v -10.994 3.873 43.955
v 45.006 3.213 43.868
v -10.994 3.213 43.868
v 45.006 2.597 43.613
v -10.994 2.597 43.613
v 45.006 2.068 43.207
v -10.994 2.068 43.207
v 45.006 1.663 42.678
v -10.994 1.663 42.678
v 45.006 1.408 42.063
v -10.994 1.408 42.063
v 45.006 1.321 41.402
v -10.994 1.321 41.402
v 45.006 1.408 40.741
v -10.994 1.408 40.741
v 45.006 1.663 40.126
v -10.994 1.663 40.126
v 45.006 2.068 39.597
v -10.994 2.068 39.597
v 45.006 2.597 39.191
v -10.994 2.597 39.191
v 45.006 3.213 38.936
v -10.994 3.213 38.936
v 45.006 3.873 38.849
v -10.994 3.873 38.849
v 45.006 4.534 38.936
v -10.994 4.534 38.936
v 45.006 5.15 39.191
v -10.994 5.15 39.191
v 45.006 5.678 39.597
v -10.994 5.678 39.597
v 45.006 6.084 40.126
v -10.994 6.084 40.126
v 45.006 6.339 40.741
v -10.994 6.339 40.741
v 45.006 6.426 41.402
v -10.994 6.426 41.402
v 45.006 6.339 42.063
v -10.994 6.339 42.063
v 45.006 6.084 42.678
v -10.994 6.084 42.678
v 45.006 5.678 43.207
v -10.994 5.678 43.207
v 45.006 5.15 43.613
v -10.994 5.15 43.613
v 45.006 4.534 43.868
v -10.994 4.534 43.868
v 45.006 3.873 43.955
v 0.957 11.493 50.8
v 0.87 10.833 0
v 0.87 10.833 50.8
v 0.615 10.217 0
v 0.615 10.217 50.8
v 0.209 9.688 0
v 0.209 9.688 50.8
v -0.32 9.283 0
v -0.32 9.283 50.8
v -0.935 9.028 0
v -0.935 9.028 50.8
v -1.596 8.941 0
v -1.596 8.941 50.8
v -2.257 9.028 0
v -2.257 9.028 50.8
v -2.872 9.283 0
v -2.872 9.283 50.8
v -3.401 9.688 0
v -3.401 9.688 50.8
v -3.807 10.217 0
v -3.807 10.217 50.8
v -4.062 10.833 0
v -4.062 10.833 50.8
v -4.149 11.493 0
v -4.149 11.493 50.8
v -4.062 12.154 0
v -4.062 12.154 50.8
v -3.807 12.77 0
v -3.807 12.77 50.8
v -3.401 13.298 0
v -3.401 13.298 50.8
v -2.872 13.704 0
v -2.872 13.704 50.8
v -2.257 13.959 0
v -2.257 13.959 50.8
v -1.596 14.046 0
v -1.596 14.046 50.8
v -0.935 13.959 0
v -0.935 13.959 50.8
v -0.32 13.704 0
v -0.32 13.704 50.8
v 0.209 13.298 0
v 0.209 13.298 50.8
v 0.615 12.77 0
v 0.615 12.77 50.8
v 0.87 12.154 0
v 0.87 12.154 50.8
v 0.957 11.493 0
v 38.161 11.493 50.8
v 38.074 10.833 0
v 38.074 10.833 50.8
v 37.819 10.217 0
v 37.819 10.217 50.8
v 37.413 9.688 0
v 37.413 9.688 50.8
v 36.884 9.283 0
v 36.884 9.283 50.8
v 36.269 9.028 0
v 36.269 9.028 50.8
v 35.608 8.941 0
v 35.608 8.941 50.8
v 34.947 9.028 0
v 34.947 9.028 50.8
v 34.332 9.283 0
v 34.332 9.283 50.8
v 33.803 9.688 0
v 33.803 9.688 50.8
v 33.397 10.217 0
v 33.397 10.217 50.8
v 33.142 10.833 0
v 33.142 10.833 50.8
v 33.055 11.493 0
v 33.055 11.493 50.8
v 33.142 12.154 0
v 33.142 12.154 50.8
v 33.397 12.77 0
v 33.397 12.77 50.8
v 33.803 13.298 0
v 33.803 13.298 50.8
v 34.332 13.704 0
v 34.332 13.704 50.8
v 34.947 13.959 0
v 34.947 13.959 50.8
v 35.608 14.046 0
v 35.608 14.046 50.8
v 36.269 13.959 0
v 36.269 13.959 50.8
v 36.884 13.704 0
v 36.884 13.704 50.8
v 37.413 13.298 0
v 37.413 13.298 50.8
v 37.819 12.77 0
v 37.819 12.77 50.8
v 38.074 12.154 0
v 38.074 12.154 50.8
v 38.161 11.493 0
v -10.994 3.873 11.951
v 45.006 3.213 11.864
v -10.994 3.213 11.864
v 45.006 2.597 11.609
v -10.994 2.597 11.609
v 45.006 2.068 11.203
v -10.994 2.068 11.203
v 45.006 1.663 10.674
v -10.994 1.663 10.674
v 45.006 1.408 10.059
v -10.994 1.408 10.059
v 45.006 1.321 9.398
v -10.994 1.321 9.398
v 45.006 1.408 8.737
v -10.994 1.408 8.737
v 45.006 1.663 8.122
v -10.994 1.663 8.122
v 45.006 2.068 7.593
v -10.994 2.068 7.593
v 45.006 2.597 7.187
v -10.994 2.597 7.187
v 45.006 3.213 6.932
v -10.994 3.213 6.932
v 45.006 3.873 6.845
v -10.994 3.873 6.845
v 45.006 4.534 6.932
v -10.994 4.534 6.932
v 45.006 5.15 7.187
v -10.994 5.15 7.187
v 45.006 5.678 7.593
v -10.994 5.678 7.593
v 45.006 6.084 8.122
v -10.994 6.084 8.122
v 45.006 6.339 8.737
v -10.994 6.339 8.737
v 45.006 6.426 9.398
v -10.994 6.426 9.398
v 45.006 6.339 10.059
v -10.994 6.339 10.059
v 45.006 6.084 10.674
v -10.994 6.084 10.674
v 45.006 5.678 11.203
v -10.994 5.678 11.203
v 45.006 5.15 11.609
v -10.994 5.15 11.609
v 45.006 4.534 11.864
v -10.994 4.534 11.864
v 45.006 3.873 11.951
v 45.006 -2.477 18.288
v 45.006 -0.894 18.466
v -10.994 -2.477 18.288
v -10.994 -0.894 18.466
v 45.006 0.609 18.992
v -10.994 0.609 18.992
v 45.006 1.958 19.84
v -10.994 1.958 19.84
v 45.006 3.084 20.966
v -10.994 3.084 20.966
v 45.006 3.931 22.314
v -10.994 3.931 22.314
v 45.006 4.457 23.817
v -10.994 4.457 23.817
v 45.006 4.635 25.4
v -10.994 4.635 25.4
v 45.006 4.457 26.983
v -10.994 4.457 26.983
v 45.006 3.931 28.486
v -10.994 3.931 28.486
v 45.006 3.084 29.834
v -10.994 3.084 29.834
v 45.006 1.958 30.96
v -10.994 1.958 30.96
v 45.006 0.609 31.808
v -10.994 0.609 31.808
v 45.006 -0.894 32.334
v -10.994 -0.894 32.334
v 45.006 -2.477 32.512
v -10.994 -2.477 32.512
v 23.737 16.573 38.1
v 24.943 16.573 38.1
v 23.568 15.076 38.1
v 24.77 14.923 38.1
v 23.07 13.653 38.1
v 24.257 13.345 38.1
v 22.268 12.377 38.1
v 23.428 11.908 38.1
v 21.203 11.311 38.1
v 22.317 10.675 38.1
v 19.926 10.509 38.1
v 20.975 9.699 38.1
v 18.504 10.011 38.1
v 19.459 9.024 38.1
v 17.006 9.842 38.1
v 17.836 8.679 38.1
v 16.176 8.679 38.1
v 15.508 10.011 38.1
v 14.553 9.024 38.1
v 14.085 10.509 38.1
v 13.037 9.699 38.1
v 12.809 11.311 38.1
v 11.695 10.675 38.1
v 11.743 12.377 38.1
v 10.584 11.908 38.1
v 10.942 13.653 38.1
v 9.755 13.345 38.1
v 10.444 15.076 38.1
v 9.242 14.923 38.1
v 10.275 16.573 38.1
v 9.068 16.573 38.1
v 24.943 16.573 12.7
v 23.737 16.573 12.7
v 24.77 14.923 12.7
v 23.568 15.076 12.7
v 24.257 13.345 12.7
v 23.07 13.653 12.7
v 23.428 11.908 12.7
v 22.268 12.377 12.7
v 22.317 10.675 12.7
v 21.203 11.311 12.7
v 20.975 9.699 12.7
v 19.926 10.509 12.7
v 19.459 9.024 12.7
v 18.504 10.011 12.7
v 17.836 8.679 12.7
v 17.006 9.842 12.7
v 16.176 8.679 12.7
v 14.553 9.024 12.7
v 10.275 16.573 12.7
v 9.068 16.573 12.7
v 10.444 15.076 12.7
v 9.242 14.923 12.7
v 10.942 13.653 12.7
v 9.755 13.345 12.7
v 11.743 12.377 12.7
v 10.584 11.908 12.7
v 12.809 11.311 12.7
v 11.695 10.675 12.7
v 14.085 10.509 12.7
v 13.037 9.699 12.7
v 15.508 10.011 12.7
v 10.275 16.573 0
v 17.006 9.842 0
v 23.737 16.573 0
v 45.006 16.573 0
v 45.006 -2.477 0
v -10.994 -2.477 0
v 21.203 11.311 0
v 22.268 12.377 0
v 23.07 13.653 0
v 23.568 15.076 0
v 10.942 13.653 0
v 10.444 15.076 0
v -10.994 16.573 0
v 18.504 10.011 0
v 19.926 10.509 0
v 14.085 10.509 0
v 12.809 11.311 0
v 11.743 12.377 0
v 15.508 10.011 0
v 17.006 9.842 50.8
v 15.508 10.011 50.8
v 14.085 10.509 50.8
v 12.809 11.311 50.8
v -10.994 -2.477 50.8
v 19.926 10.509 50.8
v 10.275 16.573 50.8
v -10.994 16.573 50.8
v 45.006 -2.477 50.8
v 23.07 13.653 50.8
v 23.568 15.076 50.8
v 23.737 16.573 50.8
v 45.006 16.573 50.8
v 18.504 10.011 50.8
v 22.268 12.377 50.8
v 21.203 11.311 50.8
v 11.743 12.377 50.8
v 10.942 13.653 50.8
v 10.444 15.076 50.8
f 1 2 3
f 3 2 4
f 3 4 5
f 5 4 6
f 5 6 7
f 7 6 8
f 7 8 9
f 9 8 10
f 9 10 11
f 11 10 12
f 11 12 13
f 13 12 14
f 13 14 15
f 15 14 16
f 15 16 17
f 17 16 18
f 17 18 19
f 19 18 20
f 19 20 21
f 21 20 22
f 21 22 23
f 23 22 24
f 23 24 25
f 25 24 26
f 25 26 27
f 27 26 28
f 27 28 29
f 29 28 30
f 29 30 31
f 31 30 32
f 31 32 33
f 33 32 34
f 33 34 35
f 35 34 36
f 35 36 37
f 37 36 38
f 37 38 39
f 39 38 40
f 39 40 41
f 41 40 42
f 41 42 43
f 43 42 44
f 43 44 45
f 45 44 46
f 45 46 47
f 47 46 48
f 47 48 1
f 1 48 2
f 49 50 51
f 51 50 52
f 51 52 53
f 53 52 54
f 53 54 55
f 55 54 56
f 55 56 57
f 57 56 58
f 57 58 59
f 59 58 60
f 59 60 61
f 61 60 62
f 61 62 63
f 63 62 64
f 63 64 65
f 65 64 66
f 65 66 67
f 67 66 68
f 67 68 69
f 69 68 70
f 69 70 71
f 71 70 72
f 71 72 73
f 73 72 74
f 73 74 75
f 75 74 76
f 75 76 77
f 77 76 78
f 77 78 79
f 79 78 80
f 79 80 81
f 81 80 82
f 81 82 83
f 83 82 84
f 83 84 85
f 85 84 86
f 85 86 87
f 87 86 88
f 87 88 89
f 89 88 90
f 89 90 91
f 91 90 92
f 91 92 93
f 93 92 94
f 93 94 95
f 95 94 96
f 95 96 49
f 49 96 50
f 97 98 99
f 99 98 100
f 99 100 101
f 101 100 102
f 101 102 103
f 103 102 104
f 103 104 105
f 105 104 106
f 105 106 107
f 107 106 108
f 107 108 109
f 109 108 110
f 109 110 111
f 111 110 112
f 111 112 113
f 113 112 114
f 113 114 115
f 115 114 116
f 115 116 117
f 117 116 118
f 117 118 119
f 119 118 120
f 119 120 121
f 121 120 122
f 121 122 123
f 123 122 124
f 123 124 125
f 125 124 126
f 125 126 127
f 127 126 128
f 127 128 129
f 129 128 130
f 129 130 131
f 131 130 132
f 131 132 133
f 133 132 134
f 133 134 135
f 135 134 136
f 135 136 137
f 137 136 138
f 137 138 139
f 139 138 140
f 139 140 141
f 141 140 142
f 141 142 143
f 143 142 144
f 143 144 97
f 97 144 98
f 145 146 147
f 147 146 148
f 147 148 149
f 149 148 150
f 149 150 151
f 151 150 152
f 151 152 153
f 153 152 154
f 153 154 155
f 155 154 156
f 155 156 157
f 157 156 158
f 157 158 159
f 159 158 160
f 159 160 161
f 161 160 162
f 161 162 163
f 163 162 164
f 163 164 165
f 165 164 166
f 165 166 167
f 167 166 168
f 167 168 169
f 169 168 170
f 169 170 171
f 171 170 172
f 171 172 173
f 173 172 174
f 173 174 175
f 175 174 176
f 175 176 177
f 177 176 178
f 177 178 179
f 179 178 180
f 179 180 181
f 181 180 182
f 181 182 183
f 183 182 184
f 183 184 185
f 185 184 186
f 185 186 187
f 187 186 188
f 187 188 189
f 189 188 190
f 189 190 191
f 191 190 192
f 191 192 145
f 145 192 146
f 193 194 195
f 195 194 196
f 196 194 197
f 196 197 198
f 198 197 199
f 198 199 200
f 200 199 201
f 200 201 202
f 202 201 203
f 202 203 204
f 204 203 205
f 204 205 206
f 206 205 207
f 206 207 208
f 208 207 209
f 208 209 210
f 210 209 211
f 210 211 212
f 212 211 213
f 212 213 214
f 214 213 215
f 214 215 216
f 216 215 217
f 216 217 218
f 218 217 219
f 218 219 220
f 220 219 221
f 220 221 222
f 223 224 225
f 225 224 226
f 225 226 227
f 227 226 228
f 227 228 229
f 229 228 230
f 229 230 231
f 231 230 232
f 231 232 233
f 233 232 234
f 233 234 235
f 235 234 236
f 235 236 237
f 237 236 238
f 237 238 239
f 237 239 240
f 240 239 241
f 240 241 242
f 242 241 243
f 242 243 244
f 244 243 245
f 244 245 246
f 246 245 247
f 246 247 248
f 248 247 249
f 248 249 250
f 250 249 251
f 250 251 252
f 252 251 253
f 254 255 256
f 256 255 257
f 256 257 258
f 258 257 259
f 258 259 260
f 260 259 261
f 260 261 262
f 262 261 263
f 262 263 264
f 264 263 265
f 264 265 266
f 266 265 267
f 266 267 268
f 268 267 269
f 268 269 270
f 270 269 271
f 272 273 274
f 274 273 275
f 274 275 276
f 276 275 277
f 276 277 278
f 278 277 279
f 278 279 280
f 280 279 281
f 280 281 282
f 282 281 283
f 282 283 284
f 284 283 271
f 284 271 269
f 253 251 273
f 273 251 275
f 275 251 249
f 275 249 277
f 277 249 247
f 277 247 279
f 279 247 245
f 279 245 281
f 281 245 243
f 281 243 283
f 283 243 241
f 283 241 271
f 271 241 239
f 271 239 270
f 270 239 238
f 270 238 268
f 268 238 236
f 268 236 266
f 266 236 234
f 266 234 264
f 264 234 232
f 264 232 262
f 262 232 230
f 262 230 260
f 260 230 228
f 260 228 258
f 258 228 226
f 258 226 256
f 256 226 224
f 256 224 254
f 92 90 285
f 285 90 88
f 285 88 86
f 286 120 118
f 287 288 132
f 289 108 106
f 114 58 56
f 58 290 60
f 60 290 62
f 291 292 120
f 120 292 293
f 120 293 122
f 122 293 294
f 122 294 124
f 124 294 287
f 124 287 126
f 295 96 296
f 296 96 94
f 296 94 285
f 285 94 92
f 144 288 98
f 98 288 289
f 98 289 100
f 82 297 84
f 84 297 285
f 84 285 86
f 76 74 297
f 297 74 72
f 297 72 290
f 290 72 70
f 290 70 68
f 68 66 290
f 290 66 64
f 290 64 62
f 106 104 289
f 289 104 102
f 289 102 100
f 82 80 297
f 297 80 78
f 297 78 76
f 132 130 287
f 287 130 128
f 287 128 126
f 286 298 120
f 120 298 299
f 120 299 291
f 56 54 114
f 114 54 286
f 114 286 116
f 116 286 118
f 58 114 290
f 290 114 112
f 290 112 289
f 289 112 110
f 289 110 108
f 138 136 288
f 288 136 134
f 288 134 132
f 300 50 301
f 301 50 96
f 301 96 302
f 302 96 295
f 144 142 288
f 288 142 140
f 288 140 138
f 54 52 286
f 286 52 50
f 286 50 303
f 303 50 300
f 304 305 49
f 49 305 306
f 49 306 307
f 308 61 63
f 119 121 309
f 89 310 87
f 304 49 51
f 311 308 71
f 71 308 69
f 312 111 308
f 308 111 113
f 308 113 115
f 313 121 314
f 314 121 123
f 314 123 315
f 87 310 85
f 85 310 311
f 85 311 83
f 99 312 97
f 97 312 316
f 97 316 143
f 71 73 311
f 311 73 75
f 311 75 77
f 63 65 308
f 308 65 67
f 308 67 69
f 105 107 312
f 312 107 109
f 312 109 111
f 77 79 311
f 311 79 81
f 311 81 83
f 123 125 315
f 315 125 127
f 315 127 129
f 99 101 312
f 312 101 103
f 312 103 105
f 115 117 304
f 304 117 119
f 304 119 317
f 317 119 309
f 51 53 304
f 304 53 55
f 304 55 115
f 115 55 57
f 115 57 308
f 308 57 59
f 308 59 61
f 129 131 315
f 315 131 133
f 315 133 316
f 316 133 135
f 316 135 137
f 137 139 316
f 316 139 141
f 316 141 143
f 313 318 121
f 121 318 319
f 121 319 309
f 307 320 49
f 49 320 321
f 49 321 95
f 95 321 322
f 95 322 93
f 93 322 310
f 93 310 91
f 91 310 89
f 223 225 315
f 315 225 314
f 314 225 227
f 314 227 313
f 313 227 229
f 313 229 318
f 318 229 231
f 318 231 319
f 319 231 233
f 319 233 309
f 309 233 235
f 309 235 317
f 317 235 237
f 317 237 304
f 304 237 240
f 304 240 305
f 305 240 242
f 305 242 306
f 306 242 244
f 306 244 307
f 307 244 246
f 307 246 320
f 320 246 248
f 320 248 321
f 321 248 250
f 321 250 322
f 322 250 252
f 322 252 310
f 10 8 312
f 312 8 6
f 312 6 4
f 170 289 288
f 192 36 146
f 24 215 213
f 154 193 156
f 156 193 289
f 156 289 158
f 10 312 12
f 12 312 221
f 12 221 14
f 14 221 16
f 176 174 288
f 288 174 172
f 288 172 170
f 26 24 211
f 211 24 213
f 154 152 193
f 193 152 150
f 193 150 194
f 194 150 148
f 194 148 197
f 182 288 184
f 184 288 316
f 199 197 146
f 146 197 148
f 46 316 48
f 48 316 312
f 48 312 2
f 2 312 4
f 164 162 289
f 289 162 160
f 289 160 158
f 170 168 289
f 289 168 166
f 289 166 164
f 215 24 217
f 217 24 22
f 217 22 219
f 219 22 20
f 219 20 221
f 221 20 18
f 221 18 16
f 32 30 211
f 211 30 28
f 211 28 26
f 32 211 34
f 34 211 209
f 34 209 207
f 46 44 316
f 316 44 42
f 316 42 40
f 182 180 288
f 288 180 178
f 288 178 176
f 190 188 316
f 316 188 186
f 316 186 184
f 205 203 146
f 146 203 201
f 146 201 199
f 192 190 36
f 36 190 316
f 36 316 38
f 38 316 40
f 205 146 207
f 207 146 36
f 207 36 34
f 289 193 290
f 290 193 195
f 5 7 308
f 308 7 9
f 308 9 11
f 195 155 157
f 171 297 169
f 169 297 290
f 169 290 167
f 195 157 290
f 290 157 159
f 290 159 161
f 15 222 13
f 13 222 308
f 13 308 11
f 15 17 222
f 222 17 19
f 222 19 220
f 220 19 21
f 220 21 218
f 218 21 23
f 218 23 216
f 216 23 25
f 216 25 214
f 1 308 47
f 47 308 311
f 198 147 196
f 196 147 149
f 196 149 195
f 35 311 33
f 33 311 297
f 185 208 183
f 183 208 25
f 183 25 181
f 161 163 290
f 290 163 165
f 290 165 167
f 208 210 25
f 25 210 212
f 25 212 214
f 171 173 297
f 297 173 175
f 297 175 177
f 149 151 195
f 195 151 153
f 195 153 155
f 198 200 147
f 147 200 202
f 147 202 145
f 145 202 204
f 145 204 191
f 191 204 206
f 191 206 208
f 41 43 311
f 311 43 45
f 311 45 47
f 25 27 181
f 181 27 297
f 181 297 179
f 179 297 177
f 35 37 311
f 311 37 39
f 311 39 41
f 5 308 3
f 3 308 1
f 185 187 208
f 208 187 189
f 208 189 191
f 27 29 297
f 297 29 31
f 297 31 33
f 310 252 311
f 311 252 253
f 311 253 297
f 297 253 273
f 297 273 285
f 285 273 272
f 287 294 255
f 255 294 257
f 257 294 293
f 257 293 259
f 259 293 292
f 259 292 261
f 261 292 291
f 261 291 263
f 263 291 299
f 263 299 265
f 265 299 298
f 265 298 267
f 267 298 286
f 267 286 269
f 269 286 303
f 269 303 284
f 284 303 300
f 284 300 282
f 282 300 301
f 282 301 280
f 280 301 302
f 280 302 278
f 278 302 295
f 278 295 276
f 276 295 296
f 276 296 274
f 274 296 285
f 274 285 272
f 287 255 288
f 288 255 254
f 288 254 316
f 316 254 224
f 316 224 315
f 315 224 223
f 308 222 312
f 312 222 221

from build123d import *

# Parameters (mm, degrees)
BOSS_EXTRUDE1_DEPTH              = 50.8
SKETCH2_R                        = 7.9375
CUT_EXTRUDE1_DEPTH               = 12.7
F_10_CLEARANCE_HOLE1_D           = 5.1054
F_10_CLEARANCE_HOLE1_ON_FACE_2_D = 5.1054
CUT_EXTRUDE4_DEPTH               = 57


with BuildPart() as part:
    # Sketch1 → Boss-Extrude1 (new body)
    with BuildSketch(Plane.XY):
        with BuildLine():
            Line((23.736970149, 16.573322883), (45.005970149, 16.573322883))
            Line((45.005970149, 16.573322883), (45.005970149, -2.476677117))
            Line((45.005970149, -2.476677117), (-10.994029851, -2.476677117))
            Line((-10.994029851, -2.476677117), (-10.994029851, 16.573322883))
            Line((-10.994029851, 16.573322883), (10.274970149, 16.573322883))
            ThreePointArc((10.274970149, 16.573322883), (17.005970149, 9.842322883), (23.736970149, 16.573322883))
        make_face()
    extrude(amount=BOSS_EXTRUDE1_DEPTH)

    # Sketch2 → Cut-Extrude1 (cut, symmetric)
    with BuildSketch(Plane.XY.offset(25.4)):
        with Locations((17.005970149, 16.573322883)):
            Circle(SKETCH2_R)
    extrude(amount=CUT_EXTRUDE1_DEPTH, both=True, mode=Mode.SUBTRACT)

    # #10 Clearance Hole1 (through all)
    with Locations(Plane(origin=(-10.994029851, 3.873322883, 41.402), x_dir=(0, 0, -1), z_dir=(-1, 0, 0))):
        with Locations((0, 0), (32.004, 0)):
            Hole(F_10_CLEARANCE_HOLE1_D / 2)

    # #10 Clearance Hole1 on face 2 (through all)
    with Locations(Plane(origin=(-1.596029851, 11.493322883, 50.8), x_dir=(1, 0, 0), z_dir=(0, 0, 1))):
        with Locations((0, 0), (37.204, 0)):
            Hole(F_10_CLEARANCE_HOLE1_ON_FACE_2_D / 2)

    # Sketch9 → Cut-Extrude4 (cut, through all)
    with BuildSketch(Plane(origin=(45.005970149, 0, 0), x_dir=(0, 0, -1), z_dir=(1, 0, 0))):
        with BuildLine():
            Line((-32.512, -2.476677117), (-18.288, -2.476677117))
            ThreePointArc((-18.288, -2.476677117), (-25.4, 4.635322883), (-32.512, -2.476677117))
        make_face()
    extrude(amount=-CUT_EXTRUDE4_DEPTH, mode=Mode.SUBTRACT)


solid = part.part
